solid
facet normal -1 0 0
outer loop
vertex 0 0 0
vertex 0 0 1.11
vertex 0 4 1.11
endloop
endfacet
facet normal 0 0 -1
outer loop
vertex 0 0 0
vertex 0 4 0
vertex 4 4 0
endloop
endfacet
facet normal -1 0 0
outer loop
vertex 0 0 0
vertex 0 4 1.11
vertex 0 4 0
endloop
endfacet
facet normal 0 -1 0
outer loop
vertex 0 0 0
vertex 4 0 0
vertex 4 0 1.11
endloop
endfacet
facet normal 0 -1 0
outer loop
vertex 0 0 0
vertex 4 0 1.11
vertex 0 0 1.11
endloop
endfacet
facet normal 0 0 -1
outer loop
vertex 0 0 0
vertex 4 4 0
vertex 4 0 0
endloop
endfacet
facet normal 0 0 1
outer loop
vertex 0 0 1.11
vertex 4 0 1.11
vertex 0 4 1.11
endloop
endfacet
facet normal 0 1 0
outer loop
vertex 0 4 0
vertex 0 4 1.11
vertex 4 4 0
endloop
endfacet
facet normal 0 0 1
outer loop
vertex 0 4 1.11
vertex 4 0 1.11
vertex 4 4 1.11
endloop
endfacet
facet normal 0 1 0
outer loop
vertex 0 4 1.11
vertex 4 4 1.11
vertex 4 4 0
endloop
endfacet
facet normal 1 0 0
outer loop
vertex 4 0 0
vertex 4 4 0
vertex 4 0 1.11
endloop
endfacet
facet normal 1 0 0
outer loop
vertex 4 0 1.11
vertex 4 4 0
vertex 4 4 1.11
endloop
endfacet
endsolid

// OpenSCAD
/* Warning, this is a very basic generator with a lot of approximation 
input data : [TFBGA, AXB, 4x4x1.11mm, 40, , A, C04-21132A]
generated by com.zoubworld.electronics.cad.model3d.Basic
Date : Sun Feb 15 10:50:49 CET 2026
*/

//body
color("black")
translate([0,0,0])
cube([4.0,4.0,1.11], center=false);
